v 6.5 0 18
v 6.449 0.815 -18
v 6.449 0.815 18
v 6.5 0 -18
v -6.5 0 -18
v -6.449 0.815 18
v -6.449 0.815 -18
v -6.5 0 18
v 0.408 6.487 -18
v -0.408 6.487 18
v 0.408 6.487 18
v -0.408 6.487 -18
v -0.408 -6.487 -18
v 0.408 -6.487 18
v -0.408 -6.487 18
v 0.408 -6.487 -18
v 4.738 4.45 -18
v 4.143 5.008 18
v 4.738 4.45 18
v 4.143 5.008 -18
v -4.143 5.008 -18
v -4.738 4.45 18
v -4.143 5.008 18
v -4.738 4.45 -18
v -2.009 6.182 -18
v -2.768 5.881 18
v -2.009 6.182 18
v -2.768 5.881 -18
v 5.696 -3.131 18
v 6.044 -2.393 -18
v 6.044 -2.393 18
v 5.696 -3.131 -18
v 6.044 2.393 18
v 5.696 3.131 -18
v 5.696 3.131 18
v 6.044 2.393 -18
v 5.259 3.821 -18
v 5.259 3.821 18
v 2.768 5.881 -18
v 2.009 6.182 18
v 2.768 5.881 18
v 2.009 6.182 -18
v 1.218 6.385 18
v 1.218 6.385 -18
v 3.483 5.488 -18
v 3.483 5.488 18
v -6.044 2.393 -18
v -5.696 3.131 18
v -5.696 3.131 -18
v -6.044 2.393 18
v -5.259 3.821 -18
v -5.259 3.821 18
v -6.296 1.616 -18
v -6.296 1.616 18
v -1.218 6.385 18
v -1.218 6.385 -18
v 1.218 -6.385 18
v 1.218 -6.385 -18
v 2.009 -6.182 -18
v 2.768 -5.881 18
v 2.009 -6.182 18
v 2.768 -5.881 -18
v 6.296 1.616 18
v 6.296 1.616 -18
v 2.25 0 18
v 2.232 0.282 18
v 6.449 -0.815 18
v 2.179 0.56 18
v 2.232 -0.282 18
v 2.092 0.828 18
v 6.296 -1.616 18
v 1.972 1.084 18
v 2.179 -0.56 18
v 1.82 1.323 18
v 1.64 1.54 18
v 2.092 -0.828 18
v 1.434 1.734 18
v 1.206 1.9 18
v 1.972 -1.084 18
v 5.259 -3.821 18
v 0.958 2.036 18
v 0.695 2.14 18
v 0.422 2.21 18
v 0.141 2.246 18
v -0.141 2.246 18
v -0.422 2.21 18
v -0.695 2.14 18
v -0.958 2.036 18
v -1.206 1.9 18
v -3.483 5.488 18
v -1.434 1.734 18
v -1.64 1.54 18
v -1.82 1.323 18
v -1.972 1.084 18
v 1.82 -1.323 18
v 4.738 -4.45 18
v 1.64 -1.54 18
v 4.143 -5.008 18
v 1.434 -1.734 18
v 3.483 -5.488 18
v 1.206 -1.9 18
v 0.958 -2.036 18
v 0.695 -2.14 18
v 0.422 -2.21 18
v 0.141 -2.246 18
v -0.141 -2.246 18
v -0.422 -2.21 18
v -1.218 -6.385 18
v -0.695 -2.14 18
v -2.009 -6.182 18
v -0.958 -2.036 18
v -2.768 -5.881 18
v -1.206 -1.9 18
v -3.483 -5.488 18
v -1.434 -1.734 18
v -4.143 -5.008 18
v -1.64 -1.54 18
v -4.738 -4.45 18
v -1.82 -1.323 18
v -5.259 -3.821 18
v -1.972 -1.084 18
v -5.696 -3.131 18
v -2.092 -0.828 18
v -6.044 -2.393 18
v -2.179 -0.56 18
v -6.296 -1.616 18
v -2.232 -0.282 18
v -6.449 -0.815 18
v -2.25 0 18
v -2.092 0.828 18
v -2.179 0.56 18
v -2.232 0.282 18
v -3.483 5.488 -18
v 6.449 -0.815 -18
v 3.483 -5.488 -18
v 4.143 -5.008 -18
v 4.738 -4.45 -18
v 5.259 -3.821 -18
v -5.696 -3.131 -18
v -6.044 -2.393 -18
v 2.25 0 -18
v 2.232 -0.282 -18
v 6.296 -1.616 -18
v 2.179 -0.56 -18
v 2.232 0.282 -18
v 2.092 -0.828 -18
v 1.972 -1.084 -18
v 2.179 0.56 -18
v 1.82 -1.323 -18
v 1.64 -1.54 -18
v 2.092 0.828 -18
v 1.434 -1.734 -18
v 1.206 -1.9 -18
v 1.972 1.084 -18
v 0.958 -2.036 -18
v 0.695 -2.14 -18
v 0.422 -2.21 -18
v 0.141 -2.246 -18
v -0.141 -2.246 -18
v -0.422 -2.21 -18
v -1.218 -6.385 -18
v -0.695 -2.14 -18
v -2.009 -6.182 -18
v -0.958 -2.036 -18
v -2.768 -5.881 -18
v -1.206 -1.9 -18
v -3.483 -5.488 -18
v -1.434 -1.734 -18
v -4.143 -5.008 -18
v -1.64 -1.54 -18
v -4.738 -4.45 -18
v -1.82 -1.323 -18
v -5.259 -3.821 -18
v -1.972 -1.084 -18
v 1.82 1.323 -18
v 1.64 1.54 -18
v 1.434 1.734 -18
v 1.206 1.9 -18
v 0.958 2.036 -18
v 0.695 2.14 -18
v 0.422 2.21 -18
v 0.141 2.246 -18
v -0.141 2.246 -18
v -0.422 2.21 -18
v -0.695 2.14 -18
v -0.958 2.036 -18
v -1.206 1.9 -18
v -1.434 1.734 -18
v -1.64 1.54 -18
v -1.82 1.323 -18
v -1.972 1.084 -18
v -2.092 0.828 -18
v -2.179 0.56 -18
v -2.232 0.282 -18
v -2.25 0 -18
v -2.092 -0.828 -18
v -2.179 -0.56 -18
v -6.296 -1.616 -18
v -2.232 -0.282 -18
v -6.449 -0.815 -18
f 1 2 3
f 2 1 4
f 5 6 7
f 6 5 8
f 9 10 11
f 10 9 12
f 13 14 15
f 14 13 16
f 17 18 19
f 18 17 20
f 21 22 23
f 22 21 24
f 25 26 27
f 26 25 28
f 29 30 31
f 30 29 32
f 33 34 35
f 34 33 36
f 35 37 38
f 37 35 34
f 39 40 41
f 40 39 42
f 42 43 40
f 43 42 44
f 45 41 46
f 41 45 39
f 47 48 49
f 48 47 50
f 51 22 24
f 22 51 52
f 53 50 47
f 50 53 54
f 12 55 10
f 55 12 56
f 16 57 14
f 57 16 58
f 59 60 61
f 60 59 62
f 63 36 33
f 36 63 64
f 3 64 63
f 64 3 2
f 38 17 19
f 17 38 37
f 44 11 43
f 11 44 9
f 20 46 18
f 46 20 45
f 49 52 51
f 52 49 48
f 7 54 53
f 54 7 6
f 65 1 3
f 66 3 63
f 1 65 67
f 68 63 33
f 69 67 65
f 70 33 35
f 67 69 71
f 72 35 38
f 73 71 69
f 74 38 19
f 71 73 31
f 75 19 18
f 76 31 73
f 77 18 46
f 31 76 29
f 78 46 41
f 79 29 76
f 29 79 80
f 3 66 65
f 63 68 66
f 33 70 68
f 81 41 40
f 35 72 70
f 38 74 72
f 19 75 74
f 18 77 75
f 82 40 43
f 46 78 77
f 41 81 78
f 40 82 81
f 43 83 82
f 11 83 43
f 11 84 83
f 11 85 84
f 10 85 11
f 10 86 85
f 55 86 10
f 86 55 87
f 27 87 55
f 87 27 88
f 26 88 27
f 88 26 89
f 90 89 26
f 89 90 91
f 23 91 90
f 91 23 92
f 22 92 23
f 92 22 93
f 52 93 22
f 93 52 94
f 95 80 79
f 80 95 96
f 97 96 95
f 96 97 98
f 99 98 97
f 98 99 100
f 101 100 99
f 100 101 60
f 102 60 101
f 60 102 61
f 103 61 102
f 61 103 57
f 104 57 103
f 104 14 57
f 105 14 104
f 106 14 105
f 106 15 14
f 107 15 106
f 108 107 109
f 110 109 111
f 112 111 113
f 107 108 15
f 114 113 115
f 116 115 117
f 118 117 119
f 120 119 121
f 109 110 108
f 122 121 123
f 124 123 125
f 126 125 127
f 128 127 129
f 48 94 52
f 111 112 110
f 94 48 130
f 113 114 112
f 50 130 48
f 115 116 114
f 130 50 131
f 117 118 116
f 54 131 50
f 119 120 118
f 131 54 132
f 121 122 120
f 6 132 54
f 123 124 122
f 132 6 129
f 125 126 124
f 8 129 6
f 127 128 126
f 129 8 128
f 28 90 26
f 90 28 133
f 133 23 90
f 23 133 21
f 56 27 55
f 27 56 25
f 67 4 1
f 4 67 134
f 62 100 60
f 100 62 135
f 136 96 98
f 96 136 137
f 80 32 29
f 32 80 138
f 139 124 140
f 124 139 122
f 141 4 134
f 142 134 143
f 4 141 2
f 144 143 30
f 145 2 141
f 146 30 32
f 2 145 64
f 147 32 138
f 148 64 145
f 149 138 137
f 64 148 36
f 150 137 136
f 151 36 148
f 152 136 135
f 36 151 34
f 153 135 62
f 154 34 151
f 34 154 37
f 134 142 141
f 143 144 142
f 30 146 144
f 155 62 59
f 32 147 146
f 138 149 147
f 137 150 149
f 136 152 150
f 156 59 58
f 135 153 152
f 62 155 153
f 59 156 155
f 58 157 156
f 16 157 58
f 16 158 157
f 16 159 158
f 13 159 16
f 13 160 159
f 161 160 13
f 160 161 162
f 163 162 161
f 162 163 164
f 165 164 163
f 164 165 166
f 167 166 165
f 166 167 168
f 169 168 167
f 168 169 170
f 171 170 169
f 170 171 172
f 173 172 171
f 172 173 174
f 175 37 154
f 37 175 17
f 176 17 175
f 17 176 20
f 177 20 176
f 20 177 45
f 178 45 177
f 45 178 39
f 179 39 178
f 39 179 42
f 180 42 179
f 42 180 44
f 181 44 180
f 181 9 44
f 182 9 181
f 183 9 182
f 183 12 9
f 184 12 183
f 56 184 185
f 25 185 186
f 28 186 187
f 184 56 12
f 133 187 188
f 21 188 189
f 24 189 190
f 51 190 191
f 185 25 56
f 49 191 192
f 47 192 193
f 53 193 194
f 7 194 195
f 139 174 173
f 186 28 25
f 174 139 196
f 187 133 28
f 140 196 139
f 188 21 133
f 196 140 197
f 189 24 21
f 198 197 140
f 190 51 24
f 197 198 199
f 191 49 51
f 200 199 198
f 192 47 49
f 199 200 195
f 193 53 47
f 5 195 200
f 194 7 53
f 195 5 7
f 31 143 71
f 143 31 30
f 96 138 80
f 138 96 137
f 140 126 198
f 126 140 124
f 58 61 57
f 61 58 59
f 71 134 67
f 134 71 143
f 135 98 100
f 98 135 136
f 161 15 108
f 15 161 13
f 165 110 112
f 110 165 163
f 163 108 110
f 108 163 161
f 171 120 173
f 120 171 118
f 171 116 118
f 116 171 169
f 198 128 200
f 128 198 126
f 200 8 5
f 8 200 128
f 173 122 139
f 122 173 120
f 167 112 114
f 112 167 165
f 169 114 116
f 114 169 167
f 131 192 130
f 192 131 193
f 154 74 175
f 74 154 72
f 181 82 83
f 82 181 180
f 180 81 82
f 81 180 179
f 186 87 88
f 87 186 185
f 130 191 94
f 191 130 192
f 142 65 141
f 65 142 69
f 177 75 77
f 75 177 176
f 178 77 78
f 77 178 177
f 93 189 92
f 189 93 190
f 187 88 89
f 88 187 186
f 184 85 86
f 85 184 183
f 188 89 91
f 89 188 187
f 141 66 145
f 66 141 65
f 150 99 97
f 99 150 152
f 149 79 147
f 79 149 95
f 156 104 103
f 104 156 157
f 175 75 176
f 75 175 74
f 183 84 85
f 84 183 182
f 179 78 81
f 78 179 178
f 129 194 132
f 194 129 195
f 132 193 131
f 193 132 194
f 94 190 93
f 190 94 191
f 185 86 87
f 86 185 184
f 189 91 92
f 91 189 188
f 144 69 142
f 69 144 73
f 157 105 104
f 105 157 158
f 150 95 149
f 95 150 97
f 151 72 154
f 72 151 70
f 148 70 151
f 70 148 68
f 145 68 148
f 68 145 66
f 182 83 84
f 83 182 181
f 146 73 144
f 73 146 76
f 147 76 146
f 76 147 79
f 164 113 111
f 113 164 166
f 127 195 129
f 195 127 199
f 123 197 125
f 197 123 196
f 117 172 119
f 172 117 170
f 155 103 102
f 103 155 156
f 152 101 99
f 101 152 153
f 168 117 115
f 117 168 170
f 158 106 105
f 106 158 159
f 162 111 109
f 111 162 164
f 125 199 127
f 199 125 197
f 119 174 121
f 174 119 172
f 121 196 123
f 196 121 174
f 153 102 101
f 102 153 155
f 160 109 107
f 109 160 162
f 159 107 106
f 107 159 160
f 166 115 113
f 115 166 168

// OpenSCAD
$fn = 50;


difference() {
	union() {
		translate(v = [0, 0, -18.0000000000]) {
			cylinder(h = 36, r = 6.5000000000);
		}
	}
	union() {
		translate(v = [0, 0, -100.0000000000]) {
			cylinder(h = 200, r = 2.2500000000);
		}
	}
}
